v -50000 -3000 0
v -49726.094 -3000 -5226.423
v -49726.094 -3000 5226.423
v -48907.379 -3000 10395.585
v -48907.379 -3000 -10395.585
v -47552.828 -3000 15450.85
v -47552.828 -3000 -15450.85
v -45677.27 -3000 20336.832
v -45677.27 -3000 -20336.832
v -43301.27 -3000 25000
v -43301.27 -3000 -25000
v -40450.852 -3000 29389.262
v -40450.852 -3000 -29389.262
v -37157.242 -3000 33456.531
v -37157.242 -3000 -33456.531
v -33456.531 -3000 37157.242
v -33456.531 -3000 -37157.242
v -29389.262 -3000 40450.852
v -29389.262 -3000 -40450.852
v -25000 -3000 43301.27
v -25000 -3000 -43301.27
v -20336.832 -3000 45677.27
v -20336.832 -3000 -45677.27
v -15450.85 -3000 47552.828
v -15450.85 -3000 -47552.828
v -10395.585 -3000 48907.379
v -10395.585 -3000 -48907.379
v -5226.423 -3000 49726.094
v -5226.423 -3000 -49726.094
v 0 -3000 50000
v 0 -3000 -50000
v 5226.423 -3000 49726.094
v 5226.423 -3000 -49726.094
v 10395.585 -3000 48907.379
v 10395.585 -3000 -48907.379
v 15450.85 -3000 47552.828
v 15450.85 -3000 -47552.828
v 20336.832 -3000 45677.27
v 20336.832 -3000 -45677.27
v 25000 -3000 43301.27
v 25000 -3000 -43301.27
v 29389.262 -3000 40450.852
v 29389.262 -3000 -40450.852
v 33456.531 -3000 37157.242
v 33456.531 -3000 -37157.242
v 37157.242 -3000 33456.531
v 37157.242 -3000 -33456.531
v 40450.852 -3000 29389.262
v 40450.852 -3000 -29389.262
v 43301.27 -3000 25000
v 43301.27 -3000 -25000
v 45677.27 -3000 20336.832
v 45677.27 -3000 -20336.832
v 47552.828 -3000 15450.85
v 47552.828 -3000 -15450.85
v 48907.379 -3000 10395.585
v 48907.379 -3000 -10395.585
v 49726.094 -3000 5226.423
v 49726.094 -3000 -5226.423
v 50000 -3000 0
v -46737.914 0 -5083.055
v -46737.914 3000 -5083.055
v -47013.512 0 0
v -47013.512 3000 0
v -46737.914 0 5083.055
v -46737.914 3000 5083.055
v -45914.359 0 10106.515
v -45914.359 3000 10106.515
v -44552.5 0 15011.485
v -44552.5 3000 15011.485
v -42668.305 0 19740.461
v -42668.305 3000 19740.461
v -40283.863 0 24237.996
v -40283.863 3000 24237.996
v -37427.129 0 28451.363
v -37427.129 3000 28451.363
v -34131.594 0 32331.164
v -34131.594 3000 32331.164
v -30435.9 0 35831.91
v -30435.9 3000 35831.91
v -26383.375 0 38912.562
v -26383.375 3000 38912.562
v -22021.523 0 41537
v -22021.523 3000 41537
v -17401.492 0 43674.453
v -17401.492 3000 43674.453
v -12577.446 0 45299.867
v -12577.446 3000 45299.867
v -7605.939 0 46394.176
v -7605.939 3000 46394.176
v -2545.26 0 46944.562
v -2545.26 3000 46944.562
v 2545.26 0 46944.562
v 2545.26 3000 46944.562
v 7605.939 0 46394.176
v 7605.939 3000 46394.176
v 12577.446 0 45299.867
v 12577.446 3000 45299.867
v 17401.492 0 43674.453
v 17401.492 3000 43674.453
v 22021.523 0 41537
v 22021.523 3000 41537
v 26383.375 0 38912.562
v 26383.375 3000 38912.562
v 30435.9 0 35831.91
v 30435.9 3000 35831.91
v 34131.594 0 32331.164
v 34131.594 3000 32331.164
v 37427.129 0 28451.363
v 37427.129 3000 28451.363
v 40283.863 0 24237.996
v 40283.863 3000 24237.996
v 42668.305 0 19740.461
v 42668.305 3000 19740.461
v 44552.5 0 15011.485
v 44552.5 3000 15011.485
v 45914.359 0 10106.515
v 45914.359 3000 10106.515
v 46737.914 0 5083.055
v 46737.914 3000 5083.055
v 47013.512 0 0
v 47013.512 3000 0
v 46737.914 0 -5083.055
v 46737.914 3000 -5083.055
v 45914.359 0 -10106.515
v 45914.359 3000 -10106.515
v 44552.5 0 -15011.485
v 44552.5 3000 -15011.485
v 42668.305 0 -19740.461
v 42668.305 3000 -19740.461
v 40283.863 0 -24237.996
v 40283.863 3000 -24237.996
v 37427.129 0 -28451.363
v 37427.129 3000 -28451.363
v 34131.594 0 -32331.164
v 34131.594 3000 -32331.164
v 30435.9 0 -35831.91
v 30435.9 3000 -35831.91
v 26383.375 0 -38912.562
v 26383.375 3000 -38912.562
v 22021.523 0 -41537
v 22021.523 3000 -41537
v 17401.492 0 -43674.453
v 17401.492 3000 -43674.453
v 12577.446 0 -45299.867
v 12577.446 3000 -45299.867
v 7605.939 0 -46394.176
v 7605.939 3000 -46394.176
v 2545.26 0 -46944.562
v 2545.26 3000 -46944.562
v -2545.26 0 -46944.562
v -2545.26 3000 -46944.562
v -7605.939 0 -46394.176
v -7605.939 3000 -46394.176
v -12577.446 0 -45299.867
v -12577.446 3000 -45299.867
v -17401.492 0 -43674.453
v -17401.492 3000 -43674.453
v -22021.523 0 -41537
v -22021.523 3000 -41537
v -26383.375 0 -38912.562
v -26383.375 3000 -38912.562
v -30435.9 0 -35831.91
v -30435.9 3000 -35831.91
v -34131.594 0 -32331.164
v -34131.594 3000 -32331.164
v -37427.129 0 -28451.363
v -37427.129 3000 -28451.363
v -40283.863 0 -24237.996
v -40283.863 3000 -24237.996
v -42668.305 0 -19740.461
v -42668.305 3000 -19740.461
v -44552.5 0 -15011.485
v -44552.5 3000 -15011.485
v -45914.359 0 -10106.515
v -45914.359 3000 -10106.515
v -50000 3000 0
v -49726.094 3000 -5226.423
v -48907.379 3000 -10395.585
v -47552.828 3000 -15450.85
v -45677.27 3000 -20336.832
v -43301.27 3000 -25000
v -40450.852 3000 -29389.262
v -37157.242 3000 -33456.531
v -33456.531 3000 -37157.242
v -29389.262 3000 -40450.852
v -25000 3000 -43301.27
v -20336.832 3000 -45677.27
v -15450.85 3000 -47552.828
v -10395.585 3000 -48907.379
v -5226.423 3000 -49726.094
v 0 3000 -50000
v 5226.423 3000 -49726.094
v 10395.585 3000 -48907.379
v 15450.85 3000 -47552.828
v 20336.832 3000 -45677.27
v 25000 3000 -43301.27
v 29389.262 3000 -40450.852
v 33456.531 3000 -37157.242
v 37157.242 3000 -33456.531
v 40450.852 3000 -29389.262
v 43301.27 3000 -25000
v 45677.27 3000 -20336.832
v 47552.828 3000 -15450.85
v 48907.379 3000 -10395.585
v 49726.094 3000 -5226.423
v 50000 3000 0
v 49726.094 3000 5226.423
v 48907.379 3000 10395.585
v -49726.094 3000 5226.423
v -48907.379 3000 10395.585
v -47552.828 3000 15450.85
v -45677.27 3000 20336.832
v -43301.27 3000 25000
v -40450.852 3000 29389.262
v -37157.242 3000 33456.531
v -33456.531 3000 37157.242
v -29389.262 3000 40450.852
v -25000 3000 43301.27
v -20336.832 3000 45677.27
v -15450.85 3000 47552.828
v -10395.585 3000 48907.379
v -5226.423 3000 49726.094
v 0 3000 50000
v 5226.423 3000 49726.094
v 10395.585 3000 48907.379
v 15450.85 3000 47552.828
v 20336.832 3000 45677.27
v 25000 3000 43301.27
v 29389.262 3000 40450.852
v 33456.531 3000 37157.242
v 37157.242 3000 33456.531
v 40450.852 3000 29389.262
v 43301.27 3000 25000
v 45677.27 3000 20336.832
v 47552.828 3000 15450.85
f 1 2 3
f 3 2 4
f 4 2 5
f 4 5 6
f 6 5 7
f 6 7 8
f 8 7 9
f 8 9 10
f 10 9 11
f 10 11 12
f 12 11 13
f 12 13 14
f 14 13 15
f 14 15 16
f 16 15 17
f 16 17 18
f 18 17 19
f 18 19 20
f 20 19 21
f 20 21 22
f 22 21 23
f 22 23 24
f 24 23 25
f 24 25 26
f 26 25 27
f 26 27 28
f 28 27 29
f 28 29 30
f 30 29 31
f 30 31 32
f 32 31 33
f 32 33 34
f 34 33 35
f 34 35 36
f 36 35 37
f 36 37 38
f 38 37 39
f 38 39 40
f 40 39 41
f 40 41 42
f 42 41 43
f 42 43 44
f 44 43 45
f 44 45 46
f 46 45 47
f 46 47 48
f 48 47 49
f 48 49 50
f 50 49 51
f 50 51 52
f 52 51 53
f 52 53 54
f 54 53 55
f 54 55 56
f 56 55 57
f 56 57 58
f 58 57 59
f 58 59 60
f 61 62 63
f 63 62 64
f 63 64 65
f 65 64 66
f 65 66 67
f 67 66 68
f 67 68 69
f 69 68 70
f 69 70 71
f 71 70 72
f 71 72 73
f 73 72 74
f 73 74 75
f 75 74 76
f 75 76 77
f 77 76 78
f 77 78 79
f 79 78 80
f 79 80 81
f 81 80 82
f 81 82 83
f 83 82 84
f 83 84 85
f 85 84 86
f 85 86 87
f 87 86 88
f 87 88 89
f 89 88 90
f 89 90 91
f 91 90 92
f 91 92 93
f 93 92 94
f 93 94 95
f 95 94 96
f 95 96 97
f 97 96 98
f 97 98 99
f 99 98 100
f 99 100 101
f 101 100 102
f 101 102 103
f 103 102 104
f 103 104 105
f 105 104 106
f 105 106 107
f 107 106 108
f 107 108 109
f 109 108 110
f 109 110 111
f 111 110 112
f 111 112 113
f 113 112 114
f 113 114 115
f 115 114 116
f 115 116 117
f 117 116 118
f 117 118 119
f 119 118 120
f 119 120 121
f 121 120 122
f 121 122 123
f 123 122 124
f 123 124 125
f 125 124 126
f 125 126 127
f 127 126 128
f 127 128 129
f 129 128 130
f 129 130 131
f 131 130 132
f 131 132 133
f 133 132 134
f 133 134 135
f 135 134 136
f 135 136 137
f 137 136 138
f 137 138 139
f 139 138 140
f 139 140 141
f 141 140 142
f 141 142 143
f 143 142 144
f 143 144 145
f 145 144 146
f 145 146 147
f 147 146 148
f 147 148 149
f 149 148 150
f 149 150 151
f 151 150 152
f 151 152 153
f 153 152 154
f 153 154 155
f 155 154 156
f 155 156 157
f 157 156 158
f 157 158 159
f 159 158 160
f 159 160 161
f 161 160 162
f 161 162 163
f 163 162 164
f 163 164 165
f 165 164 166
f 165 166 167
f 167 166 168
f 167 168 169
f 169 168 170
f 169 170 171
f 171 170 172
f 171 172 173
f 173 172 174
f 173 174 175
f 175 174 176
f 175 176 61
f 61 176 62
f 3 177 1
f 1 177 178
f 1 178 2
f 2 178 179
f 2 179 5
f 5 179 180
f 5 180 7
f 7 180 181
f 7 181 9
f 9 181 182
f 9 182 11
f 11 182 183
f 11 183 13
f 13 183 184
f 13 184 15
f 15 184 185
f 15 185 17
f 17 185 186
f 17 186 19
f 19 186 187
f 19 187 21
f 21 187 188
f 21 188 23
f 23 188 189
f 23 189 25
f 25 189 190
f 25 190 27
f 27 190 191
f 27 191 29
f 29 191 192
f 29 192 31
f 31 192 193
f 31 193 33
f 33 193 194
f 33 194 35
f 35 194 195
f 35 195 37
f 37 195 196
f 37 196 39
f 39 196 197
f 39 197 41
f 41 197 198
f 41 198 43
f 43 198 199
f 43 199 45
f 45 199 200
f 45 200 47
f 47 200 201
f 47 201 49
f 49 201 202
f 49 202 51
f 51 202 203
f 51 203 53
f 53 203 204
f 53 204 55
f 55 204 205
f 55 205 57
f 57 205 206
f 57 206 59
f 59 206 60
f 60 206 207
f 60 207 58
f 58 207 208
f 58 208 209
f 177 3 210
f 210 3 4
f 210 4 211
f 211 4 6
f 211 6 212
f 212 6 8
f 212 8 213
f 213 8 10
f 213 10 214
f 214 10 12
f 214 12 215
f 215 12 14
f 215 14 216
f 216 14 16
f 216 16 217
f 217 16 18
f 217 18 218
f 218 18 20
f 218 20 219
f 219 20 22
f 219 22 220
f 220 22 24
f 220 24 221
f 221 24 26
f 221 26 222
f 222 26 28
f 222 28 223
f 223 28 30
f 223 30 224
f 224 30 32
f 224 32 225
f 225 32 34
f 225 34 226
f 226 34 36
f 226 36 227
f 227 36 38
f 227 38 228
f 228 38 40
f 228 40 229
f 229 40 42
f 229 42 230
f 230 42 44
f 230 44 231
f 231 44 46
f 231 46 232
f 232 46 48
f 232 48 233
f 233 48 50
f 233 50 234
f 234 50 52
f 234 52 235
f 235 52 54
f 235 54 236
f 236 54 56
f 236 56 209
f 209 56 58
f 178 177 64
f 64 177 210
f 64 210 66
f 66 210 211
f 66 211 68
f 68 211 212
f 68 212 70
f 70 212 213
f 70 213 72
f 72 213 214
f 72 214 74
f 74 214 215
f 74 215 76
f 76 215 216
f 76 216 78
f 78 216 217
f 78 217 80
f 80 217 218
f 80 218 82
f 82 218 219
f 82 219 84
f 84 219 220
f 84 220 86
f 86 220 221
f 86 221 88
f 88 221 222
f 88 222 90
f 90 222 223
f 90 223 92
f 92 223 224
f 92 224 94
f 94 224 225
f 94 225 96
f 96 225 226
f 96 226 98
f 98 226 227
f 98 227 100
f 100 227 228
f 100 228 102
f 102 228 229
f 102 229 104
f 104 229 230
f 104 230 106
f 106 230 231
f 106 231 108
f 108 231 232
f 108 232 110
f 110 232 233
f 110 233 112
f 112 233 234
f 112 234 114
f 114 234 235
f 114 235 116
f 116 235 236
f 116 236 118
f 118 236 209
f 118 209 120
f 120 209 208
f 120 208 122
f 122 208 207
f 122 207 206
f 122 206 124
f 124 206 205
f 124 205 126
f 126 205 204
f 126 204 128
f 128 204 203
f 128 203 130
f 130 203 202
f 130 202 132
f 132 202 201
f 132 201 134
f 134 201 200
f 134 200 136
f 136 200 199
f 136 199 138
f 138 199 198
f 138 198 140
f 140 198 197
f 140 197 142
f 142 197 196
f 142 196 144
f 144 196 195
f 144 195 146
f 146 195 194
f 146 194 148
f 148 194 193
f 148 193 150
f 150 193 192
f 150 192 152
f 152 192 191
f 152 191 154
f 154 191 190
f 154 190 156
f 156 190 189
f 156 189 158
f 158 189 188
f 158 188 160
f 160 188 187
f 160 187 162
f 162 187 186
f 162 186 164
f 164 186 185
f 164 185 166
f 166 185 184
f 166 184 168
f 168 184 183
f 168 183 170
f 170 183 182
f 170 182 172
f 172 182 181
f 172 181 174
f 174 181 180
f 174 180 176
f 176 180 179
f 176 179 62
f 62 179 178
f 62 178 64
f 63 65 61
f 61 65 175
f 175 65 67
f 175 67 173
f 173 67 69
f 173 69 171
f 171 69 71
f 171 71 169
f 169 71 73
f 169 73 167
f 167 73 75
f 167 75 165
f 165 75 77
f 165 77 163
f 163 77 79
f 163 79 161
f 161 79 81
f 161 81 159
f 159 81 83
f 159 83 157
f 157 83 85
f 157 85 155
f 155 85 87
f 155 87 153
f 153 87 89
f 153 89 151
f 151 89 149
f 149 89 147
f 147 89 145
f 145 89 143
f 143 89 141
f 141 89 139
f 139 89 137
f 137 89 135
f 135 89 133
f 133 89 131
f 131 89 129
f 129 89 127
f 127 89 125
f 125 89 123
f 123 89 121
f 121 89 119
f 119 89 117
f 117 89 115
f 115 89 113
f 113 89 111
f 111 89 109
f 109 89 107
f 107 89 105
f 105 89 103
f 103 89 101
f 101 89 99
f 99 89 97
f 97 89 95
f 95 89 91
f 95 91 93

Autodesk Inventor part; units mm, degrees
ref_plane "YZ Plane" through (0, 0, 0) normal (1, 0, 0) x (0, 1, 0)
ref_plane "XZ Plane" through (0, 0, 0) normal (0, 1, 0) x (-1, 0, 0)
ref_plane "XY Plane" through (0, 0, 0) normal (0, 0, 1) x (1, 0, 0)
sketch "Sketch1" plane through (0, 0, 0) normal (0, 1, 0) x (-1, 0, 0)
  circle A0 centre (0, 0) radius 50000
  circle A1 centre (0, 0) radius 47013.5085
  dimension "d0" = 100000
extrude "Extrusion1" add sketch "Sketch1" along normal mid plane 6000
sketch "Sketch2" plane through (0, 0, 0) normal (0, 1, 0) x (-1, 0, 0)
  circle A0 centre (0, 0) radius 47013.5085 projected
  circle A1 centre (0, 0) radius 50000 projected
  circle A2 centre (0, 0) radius 47013.5085 projected
extrude "Extrusion2" add sketch "Sketch2" against normal blind 3000 contours A0
properties part number "tube"
